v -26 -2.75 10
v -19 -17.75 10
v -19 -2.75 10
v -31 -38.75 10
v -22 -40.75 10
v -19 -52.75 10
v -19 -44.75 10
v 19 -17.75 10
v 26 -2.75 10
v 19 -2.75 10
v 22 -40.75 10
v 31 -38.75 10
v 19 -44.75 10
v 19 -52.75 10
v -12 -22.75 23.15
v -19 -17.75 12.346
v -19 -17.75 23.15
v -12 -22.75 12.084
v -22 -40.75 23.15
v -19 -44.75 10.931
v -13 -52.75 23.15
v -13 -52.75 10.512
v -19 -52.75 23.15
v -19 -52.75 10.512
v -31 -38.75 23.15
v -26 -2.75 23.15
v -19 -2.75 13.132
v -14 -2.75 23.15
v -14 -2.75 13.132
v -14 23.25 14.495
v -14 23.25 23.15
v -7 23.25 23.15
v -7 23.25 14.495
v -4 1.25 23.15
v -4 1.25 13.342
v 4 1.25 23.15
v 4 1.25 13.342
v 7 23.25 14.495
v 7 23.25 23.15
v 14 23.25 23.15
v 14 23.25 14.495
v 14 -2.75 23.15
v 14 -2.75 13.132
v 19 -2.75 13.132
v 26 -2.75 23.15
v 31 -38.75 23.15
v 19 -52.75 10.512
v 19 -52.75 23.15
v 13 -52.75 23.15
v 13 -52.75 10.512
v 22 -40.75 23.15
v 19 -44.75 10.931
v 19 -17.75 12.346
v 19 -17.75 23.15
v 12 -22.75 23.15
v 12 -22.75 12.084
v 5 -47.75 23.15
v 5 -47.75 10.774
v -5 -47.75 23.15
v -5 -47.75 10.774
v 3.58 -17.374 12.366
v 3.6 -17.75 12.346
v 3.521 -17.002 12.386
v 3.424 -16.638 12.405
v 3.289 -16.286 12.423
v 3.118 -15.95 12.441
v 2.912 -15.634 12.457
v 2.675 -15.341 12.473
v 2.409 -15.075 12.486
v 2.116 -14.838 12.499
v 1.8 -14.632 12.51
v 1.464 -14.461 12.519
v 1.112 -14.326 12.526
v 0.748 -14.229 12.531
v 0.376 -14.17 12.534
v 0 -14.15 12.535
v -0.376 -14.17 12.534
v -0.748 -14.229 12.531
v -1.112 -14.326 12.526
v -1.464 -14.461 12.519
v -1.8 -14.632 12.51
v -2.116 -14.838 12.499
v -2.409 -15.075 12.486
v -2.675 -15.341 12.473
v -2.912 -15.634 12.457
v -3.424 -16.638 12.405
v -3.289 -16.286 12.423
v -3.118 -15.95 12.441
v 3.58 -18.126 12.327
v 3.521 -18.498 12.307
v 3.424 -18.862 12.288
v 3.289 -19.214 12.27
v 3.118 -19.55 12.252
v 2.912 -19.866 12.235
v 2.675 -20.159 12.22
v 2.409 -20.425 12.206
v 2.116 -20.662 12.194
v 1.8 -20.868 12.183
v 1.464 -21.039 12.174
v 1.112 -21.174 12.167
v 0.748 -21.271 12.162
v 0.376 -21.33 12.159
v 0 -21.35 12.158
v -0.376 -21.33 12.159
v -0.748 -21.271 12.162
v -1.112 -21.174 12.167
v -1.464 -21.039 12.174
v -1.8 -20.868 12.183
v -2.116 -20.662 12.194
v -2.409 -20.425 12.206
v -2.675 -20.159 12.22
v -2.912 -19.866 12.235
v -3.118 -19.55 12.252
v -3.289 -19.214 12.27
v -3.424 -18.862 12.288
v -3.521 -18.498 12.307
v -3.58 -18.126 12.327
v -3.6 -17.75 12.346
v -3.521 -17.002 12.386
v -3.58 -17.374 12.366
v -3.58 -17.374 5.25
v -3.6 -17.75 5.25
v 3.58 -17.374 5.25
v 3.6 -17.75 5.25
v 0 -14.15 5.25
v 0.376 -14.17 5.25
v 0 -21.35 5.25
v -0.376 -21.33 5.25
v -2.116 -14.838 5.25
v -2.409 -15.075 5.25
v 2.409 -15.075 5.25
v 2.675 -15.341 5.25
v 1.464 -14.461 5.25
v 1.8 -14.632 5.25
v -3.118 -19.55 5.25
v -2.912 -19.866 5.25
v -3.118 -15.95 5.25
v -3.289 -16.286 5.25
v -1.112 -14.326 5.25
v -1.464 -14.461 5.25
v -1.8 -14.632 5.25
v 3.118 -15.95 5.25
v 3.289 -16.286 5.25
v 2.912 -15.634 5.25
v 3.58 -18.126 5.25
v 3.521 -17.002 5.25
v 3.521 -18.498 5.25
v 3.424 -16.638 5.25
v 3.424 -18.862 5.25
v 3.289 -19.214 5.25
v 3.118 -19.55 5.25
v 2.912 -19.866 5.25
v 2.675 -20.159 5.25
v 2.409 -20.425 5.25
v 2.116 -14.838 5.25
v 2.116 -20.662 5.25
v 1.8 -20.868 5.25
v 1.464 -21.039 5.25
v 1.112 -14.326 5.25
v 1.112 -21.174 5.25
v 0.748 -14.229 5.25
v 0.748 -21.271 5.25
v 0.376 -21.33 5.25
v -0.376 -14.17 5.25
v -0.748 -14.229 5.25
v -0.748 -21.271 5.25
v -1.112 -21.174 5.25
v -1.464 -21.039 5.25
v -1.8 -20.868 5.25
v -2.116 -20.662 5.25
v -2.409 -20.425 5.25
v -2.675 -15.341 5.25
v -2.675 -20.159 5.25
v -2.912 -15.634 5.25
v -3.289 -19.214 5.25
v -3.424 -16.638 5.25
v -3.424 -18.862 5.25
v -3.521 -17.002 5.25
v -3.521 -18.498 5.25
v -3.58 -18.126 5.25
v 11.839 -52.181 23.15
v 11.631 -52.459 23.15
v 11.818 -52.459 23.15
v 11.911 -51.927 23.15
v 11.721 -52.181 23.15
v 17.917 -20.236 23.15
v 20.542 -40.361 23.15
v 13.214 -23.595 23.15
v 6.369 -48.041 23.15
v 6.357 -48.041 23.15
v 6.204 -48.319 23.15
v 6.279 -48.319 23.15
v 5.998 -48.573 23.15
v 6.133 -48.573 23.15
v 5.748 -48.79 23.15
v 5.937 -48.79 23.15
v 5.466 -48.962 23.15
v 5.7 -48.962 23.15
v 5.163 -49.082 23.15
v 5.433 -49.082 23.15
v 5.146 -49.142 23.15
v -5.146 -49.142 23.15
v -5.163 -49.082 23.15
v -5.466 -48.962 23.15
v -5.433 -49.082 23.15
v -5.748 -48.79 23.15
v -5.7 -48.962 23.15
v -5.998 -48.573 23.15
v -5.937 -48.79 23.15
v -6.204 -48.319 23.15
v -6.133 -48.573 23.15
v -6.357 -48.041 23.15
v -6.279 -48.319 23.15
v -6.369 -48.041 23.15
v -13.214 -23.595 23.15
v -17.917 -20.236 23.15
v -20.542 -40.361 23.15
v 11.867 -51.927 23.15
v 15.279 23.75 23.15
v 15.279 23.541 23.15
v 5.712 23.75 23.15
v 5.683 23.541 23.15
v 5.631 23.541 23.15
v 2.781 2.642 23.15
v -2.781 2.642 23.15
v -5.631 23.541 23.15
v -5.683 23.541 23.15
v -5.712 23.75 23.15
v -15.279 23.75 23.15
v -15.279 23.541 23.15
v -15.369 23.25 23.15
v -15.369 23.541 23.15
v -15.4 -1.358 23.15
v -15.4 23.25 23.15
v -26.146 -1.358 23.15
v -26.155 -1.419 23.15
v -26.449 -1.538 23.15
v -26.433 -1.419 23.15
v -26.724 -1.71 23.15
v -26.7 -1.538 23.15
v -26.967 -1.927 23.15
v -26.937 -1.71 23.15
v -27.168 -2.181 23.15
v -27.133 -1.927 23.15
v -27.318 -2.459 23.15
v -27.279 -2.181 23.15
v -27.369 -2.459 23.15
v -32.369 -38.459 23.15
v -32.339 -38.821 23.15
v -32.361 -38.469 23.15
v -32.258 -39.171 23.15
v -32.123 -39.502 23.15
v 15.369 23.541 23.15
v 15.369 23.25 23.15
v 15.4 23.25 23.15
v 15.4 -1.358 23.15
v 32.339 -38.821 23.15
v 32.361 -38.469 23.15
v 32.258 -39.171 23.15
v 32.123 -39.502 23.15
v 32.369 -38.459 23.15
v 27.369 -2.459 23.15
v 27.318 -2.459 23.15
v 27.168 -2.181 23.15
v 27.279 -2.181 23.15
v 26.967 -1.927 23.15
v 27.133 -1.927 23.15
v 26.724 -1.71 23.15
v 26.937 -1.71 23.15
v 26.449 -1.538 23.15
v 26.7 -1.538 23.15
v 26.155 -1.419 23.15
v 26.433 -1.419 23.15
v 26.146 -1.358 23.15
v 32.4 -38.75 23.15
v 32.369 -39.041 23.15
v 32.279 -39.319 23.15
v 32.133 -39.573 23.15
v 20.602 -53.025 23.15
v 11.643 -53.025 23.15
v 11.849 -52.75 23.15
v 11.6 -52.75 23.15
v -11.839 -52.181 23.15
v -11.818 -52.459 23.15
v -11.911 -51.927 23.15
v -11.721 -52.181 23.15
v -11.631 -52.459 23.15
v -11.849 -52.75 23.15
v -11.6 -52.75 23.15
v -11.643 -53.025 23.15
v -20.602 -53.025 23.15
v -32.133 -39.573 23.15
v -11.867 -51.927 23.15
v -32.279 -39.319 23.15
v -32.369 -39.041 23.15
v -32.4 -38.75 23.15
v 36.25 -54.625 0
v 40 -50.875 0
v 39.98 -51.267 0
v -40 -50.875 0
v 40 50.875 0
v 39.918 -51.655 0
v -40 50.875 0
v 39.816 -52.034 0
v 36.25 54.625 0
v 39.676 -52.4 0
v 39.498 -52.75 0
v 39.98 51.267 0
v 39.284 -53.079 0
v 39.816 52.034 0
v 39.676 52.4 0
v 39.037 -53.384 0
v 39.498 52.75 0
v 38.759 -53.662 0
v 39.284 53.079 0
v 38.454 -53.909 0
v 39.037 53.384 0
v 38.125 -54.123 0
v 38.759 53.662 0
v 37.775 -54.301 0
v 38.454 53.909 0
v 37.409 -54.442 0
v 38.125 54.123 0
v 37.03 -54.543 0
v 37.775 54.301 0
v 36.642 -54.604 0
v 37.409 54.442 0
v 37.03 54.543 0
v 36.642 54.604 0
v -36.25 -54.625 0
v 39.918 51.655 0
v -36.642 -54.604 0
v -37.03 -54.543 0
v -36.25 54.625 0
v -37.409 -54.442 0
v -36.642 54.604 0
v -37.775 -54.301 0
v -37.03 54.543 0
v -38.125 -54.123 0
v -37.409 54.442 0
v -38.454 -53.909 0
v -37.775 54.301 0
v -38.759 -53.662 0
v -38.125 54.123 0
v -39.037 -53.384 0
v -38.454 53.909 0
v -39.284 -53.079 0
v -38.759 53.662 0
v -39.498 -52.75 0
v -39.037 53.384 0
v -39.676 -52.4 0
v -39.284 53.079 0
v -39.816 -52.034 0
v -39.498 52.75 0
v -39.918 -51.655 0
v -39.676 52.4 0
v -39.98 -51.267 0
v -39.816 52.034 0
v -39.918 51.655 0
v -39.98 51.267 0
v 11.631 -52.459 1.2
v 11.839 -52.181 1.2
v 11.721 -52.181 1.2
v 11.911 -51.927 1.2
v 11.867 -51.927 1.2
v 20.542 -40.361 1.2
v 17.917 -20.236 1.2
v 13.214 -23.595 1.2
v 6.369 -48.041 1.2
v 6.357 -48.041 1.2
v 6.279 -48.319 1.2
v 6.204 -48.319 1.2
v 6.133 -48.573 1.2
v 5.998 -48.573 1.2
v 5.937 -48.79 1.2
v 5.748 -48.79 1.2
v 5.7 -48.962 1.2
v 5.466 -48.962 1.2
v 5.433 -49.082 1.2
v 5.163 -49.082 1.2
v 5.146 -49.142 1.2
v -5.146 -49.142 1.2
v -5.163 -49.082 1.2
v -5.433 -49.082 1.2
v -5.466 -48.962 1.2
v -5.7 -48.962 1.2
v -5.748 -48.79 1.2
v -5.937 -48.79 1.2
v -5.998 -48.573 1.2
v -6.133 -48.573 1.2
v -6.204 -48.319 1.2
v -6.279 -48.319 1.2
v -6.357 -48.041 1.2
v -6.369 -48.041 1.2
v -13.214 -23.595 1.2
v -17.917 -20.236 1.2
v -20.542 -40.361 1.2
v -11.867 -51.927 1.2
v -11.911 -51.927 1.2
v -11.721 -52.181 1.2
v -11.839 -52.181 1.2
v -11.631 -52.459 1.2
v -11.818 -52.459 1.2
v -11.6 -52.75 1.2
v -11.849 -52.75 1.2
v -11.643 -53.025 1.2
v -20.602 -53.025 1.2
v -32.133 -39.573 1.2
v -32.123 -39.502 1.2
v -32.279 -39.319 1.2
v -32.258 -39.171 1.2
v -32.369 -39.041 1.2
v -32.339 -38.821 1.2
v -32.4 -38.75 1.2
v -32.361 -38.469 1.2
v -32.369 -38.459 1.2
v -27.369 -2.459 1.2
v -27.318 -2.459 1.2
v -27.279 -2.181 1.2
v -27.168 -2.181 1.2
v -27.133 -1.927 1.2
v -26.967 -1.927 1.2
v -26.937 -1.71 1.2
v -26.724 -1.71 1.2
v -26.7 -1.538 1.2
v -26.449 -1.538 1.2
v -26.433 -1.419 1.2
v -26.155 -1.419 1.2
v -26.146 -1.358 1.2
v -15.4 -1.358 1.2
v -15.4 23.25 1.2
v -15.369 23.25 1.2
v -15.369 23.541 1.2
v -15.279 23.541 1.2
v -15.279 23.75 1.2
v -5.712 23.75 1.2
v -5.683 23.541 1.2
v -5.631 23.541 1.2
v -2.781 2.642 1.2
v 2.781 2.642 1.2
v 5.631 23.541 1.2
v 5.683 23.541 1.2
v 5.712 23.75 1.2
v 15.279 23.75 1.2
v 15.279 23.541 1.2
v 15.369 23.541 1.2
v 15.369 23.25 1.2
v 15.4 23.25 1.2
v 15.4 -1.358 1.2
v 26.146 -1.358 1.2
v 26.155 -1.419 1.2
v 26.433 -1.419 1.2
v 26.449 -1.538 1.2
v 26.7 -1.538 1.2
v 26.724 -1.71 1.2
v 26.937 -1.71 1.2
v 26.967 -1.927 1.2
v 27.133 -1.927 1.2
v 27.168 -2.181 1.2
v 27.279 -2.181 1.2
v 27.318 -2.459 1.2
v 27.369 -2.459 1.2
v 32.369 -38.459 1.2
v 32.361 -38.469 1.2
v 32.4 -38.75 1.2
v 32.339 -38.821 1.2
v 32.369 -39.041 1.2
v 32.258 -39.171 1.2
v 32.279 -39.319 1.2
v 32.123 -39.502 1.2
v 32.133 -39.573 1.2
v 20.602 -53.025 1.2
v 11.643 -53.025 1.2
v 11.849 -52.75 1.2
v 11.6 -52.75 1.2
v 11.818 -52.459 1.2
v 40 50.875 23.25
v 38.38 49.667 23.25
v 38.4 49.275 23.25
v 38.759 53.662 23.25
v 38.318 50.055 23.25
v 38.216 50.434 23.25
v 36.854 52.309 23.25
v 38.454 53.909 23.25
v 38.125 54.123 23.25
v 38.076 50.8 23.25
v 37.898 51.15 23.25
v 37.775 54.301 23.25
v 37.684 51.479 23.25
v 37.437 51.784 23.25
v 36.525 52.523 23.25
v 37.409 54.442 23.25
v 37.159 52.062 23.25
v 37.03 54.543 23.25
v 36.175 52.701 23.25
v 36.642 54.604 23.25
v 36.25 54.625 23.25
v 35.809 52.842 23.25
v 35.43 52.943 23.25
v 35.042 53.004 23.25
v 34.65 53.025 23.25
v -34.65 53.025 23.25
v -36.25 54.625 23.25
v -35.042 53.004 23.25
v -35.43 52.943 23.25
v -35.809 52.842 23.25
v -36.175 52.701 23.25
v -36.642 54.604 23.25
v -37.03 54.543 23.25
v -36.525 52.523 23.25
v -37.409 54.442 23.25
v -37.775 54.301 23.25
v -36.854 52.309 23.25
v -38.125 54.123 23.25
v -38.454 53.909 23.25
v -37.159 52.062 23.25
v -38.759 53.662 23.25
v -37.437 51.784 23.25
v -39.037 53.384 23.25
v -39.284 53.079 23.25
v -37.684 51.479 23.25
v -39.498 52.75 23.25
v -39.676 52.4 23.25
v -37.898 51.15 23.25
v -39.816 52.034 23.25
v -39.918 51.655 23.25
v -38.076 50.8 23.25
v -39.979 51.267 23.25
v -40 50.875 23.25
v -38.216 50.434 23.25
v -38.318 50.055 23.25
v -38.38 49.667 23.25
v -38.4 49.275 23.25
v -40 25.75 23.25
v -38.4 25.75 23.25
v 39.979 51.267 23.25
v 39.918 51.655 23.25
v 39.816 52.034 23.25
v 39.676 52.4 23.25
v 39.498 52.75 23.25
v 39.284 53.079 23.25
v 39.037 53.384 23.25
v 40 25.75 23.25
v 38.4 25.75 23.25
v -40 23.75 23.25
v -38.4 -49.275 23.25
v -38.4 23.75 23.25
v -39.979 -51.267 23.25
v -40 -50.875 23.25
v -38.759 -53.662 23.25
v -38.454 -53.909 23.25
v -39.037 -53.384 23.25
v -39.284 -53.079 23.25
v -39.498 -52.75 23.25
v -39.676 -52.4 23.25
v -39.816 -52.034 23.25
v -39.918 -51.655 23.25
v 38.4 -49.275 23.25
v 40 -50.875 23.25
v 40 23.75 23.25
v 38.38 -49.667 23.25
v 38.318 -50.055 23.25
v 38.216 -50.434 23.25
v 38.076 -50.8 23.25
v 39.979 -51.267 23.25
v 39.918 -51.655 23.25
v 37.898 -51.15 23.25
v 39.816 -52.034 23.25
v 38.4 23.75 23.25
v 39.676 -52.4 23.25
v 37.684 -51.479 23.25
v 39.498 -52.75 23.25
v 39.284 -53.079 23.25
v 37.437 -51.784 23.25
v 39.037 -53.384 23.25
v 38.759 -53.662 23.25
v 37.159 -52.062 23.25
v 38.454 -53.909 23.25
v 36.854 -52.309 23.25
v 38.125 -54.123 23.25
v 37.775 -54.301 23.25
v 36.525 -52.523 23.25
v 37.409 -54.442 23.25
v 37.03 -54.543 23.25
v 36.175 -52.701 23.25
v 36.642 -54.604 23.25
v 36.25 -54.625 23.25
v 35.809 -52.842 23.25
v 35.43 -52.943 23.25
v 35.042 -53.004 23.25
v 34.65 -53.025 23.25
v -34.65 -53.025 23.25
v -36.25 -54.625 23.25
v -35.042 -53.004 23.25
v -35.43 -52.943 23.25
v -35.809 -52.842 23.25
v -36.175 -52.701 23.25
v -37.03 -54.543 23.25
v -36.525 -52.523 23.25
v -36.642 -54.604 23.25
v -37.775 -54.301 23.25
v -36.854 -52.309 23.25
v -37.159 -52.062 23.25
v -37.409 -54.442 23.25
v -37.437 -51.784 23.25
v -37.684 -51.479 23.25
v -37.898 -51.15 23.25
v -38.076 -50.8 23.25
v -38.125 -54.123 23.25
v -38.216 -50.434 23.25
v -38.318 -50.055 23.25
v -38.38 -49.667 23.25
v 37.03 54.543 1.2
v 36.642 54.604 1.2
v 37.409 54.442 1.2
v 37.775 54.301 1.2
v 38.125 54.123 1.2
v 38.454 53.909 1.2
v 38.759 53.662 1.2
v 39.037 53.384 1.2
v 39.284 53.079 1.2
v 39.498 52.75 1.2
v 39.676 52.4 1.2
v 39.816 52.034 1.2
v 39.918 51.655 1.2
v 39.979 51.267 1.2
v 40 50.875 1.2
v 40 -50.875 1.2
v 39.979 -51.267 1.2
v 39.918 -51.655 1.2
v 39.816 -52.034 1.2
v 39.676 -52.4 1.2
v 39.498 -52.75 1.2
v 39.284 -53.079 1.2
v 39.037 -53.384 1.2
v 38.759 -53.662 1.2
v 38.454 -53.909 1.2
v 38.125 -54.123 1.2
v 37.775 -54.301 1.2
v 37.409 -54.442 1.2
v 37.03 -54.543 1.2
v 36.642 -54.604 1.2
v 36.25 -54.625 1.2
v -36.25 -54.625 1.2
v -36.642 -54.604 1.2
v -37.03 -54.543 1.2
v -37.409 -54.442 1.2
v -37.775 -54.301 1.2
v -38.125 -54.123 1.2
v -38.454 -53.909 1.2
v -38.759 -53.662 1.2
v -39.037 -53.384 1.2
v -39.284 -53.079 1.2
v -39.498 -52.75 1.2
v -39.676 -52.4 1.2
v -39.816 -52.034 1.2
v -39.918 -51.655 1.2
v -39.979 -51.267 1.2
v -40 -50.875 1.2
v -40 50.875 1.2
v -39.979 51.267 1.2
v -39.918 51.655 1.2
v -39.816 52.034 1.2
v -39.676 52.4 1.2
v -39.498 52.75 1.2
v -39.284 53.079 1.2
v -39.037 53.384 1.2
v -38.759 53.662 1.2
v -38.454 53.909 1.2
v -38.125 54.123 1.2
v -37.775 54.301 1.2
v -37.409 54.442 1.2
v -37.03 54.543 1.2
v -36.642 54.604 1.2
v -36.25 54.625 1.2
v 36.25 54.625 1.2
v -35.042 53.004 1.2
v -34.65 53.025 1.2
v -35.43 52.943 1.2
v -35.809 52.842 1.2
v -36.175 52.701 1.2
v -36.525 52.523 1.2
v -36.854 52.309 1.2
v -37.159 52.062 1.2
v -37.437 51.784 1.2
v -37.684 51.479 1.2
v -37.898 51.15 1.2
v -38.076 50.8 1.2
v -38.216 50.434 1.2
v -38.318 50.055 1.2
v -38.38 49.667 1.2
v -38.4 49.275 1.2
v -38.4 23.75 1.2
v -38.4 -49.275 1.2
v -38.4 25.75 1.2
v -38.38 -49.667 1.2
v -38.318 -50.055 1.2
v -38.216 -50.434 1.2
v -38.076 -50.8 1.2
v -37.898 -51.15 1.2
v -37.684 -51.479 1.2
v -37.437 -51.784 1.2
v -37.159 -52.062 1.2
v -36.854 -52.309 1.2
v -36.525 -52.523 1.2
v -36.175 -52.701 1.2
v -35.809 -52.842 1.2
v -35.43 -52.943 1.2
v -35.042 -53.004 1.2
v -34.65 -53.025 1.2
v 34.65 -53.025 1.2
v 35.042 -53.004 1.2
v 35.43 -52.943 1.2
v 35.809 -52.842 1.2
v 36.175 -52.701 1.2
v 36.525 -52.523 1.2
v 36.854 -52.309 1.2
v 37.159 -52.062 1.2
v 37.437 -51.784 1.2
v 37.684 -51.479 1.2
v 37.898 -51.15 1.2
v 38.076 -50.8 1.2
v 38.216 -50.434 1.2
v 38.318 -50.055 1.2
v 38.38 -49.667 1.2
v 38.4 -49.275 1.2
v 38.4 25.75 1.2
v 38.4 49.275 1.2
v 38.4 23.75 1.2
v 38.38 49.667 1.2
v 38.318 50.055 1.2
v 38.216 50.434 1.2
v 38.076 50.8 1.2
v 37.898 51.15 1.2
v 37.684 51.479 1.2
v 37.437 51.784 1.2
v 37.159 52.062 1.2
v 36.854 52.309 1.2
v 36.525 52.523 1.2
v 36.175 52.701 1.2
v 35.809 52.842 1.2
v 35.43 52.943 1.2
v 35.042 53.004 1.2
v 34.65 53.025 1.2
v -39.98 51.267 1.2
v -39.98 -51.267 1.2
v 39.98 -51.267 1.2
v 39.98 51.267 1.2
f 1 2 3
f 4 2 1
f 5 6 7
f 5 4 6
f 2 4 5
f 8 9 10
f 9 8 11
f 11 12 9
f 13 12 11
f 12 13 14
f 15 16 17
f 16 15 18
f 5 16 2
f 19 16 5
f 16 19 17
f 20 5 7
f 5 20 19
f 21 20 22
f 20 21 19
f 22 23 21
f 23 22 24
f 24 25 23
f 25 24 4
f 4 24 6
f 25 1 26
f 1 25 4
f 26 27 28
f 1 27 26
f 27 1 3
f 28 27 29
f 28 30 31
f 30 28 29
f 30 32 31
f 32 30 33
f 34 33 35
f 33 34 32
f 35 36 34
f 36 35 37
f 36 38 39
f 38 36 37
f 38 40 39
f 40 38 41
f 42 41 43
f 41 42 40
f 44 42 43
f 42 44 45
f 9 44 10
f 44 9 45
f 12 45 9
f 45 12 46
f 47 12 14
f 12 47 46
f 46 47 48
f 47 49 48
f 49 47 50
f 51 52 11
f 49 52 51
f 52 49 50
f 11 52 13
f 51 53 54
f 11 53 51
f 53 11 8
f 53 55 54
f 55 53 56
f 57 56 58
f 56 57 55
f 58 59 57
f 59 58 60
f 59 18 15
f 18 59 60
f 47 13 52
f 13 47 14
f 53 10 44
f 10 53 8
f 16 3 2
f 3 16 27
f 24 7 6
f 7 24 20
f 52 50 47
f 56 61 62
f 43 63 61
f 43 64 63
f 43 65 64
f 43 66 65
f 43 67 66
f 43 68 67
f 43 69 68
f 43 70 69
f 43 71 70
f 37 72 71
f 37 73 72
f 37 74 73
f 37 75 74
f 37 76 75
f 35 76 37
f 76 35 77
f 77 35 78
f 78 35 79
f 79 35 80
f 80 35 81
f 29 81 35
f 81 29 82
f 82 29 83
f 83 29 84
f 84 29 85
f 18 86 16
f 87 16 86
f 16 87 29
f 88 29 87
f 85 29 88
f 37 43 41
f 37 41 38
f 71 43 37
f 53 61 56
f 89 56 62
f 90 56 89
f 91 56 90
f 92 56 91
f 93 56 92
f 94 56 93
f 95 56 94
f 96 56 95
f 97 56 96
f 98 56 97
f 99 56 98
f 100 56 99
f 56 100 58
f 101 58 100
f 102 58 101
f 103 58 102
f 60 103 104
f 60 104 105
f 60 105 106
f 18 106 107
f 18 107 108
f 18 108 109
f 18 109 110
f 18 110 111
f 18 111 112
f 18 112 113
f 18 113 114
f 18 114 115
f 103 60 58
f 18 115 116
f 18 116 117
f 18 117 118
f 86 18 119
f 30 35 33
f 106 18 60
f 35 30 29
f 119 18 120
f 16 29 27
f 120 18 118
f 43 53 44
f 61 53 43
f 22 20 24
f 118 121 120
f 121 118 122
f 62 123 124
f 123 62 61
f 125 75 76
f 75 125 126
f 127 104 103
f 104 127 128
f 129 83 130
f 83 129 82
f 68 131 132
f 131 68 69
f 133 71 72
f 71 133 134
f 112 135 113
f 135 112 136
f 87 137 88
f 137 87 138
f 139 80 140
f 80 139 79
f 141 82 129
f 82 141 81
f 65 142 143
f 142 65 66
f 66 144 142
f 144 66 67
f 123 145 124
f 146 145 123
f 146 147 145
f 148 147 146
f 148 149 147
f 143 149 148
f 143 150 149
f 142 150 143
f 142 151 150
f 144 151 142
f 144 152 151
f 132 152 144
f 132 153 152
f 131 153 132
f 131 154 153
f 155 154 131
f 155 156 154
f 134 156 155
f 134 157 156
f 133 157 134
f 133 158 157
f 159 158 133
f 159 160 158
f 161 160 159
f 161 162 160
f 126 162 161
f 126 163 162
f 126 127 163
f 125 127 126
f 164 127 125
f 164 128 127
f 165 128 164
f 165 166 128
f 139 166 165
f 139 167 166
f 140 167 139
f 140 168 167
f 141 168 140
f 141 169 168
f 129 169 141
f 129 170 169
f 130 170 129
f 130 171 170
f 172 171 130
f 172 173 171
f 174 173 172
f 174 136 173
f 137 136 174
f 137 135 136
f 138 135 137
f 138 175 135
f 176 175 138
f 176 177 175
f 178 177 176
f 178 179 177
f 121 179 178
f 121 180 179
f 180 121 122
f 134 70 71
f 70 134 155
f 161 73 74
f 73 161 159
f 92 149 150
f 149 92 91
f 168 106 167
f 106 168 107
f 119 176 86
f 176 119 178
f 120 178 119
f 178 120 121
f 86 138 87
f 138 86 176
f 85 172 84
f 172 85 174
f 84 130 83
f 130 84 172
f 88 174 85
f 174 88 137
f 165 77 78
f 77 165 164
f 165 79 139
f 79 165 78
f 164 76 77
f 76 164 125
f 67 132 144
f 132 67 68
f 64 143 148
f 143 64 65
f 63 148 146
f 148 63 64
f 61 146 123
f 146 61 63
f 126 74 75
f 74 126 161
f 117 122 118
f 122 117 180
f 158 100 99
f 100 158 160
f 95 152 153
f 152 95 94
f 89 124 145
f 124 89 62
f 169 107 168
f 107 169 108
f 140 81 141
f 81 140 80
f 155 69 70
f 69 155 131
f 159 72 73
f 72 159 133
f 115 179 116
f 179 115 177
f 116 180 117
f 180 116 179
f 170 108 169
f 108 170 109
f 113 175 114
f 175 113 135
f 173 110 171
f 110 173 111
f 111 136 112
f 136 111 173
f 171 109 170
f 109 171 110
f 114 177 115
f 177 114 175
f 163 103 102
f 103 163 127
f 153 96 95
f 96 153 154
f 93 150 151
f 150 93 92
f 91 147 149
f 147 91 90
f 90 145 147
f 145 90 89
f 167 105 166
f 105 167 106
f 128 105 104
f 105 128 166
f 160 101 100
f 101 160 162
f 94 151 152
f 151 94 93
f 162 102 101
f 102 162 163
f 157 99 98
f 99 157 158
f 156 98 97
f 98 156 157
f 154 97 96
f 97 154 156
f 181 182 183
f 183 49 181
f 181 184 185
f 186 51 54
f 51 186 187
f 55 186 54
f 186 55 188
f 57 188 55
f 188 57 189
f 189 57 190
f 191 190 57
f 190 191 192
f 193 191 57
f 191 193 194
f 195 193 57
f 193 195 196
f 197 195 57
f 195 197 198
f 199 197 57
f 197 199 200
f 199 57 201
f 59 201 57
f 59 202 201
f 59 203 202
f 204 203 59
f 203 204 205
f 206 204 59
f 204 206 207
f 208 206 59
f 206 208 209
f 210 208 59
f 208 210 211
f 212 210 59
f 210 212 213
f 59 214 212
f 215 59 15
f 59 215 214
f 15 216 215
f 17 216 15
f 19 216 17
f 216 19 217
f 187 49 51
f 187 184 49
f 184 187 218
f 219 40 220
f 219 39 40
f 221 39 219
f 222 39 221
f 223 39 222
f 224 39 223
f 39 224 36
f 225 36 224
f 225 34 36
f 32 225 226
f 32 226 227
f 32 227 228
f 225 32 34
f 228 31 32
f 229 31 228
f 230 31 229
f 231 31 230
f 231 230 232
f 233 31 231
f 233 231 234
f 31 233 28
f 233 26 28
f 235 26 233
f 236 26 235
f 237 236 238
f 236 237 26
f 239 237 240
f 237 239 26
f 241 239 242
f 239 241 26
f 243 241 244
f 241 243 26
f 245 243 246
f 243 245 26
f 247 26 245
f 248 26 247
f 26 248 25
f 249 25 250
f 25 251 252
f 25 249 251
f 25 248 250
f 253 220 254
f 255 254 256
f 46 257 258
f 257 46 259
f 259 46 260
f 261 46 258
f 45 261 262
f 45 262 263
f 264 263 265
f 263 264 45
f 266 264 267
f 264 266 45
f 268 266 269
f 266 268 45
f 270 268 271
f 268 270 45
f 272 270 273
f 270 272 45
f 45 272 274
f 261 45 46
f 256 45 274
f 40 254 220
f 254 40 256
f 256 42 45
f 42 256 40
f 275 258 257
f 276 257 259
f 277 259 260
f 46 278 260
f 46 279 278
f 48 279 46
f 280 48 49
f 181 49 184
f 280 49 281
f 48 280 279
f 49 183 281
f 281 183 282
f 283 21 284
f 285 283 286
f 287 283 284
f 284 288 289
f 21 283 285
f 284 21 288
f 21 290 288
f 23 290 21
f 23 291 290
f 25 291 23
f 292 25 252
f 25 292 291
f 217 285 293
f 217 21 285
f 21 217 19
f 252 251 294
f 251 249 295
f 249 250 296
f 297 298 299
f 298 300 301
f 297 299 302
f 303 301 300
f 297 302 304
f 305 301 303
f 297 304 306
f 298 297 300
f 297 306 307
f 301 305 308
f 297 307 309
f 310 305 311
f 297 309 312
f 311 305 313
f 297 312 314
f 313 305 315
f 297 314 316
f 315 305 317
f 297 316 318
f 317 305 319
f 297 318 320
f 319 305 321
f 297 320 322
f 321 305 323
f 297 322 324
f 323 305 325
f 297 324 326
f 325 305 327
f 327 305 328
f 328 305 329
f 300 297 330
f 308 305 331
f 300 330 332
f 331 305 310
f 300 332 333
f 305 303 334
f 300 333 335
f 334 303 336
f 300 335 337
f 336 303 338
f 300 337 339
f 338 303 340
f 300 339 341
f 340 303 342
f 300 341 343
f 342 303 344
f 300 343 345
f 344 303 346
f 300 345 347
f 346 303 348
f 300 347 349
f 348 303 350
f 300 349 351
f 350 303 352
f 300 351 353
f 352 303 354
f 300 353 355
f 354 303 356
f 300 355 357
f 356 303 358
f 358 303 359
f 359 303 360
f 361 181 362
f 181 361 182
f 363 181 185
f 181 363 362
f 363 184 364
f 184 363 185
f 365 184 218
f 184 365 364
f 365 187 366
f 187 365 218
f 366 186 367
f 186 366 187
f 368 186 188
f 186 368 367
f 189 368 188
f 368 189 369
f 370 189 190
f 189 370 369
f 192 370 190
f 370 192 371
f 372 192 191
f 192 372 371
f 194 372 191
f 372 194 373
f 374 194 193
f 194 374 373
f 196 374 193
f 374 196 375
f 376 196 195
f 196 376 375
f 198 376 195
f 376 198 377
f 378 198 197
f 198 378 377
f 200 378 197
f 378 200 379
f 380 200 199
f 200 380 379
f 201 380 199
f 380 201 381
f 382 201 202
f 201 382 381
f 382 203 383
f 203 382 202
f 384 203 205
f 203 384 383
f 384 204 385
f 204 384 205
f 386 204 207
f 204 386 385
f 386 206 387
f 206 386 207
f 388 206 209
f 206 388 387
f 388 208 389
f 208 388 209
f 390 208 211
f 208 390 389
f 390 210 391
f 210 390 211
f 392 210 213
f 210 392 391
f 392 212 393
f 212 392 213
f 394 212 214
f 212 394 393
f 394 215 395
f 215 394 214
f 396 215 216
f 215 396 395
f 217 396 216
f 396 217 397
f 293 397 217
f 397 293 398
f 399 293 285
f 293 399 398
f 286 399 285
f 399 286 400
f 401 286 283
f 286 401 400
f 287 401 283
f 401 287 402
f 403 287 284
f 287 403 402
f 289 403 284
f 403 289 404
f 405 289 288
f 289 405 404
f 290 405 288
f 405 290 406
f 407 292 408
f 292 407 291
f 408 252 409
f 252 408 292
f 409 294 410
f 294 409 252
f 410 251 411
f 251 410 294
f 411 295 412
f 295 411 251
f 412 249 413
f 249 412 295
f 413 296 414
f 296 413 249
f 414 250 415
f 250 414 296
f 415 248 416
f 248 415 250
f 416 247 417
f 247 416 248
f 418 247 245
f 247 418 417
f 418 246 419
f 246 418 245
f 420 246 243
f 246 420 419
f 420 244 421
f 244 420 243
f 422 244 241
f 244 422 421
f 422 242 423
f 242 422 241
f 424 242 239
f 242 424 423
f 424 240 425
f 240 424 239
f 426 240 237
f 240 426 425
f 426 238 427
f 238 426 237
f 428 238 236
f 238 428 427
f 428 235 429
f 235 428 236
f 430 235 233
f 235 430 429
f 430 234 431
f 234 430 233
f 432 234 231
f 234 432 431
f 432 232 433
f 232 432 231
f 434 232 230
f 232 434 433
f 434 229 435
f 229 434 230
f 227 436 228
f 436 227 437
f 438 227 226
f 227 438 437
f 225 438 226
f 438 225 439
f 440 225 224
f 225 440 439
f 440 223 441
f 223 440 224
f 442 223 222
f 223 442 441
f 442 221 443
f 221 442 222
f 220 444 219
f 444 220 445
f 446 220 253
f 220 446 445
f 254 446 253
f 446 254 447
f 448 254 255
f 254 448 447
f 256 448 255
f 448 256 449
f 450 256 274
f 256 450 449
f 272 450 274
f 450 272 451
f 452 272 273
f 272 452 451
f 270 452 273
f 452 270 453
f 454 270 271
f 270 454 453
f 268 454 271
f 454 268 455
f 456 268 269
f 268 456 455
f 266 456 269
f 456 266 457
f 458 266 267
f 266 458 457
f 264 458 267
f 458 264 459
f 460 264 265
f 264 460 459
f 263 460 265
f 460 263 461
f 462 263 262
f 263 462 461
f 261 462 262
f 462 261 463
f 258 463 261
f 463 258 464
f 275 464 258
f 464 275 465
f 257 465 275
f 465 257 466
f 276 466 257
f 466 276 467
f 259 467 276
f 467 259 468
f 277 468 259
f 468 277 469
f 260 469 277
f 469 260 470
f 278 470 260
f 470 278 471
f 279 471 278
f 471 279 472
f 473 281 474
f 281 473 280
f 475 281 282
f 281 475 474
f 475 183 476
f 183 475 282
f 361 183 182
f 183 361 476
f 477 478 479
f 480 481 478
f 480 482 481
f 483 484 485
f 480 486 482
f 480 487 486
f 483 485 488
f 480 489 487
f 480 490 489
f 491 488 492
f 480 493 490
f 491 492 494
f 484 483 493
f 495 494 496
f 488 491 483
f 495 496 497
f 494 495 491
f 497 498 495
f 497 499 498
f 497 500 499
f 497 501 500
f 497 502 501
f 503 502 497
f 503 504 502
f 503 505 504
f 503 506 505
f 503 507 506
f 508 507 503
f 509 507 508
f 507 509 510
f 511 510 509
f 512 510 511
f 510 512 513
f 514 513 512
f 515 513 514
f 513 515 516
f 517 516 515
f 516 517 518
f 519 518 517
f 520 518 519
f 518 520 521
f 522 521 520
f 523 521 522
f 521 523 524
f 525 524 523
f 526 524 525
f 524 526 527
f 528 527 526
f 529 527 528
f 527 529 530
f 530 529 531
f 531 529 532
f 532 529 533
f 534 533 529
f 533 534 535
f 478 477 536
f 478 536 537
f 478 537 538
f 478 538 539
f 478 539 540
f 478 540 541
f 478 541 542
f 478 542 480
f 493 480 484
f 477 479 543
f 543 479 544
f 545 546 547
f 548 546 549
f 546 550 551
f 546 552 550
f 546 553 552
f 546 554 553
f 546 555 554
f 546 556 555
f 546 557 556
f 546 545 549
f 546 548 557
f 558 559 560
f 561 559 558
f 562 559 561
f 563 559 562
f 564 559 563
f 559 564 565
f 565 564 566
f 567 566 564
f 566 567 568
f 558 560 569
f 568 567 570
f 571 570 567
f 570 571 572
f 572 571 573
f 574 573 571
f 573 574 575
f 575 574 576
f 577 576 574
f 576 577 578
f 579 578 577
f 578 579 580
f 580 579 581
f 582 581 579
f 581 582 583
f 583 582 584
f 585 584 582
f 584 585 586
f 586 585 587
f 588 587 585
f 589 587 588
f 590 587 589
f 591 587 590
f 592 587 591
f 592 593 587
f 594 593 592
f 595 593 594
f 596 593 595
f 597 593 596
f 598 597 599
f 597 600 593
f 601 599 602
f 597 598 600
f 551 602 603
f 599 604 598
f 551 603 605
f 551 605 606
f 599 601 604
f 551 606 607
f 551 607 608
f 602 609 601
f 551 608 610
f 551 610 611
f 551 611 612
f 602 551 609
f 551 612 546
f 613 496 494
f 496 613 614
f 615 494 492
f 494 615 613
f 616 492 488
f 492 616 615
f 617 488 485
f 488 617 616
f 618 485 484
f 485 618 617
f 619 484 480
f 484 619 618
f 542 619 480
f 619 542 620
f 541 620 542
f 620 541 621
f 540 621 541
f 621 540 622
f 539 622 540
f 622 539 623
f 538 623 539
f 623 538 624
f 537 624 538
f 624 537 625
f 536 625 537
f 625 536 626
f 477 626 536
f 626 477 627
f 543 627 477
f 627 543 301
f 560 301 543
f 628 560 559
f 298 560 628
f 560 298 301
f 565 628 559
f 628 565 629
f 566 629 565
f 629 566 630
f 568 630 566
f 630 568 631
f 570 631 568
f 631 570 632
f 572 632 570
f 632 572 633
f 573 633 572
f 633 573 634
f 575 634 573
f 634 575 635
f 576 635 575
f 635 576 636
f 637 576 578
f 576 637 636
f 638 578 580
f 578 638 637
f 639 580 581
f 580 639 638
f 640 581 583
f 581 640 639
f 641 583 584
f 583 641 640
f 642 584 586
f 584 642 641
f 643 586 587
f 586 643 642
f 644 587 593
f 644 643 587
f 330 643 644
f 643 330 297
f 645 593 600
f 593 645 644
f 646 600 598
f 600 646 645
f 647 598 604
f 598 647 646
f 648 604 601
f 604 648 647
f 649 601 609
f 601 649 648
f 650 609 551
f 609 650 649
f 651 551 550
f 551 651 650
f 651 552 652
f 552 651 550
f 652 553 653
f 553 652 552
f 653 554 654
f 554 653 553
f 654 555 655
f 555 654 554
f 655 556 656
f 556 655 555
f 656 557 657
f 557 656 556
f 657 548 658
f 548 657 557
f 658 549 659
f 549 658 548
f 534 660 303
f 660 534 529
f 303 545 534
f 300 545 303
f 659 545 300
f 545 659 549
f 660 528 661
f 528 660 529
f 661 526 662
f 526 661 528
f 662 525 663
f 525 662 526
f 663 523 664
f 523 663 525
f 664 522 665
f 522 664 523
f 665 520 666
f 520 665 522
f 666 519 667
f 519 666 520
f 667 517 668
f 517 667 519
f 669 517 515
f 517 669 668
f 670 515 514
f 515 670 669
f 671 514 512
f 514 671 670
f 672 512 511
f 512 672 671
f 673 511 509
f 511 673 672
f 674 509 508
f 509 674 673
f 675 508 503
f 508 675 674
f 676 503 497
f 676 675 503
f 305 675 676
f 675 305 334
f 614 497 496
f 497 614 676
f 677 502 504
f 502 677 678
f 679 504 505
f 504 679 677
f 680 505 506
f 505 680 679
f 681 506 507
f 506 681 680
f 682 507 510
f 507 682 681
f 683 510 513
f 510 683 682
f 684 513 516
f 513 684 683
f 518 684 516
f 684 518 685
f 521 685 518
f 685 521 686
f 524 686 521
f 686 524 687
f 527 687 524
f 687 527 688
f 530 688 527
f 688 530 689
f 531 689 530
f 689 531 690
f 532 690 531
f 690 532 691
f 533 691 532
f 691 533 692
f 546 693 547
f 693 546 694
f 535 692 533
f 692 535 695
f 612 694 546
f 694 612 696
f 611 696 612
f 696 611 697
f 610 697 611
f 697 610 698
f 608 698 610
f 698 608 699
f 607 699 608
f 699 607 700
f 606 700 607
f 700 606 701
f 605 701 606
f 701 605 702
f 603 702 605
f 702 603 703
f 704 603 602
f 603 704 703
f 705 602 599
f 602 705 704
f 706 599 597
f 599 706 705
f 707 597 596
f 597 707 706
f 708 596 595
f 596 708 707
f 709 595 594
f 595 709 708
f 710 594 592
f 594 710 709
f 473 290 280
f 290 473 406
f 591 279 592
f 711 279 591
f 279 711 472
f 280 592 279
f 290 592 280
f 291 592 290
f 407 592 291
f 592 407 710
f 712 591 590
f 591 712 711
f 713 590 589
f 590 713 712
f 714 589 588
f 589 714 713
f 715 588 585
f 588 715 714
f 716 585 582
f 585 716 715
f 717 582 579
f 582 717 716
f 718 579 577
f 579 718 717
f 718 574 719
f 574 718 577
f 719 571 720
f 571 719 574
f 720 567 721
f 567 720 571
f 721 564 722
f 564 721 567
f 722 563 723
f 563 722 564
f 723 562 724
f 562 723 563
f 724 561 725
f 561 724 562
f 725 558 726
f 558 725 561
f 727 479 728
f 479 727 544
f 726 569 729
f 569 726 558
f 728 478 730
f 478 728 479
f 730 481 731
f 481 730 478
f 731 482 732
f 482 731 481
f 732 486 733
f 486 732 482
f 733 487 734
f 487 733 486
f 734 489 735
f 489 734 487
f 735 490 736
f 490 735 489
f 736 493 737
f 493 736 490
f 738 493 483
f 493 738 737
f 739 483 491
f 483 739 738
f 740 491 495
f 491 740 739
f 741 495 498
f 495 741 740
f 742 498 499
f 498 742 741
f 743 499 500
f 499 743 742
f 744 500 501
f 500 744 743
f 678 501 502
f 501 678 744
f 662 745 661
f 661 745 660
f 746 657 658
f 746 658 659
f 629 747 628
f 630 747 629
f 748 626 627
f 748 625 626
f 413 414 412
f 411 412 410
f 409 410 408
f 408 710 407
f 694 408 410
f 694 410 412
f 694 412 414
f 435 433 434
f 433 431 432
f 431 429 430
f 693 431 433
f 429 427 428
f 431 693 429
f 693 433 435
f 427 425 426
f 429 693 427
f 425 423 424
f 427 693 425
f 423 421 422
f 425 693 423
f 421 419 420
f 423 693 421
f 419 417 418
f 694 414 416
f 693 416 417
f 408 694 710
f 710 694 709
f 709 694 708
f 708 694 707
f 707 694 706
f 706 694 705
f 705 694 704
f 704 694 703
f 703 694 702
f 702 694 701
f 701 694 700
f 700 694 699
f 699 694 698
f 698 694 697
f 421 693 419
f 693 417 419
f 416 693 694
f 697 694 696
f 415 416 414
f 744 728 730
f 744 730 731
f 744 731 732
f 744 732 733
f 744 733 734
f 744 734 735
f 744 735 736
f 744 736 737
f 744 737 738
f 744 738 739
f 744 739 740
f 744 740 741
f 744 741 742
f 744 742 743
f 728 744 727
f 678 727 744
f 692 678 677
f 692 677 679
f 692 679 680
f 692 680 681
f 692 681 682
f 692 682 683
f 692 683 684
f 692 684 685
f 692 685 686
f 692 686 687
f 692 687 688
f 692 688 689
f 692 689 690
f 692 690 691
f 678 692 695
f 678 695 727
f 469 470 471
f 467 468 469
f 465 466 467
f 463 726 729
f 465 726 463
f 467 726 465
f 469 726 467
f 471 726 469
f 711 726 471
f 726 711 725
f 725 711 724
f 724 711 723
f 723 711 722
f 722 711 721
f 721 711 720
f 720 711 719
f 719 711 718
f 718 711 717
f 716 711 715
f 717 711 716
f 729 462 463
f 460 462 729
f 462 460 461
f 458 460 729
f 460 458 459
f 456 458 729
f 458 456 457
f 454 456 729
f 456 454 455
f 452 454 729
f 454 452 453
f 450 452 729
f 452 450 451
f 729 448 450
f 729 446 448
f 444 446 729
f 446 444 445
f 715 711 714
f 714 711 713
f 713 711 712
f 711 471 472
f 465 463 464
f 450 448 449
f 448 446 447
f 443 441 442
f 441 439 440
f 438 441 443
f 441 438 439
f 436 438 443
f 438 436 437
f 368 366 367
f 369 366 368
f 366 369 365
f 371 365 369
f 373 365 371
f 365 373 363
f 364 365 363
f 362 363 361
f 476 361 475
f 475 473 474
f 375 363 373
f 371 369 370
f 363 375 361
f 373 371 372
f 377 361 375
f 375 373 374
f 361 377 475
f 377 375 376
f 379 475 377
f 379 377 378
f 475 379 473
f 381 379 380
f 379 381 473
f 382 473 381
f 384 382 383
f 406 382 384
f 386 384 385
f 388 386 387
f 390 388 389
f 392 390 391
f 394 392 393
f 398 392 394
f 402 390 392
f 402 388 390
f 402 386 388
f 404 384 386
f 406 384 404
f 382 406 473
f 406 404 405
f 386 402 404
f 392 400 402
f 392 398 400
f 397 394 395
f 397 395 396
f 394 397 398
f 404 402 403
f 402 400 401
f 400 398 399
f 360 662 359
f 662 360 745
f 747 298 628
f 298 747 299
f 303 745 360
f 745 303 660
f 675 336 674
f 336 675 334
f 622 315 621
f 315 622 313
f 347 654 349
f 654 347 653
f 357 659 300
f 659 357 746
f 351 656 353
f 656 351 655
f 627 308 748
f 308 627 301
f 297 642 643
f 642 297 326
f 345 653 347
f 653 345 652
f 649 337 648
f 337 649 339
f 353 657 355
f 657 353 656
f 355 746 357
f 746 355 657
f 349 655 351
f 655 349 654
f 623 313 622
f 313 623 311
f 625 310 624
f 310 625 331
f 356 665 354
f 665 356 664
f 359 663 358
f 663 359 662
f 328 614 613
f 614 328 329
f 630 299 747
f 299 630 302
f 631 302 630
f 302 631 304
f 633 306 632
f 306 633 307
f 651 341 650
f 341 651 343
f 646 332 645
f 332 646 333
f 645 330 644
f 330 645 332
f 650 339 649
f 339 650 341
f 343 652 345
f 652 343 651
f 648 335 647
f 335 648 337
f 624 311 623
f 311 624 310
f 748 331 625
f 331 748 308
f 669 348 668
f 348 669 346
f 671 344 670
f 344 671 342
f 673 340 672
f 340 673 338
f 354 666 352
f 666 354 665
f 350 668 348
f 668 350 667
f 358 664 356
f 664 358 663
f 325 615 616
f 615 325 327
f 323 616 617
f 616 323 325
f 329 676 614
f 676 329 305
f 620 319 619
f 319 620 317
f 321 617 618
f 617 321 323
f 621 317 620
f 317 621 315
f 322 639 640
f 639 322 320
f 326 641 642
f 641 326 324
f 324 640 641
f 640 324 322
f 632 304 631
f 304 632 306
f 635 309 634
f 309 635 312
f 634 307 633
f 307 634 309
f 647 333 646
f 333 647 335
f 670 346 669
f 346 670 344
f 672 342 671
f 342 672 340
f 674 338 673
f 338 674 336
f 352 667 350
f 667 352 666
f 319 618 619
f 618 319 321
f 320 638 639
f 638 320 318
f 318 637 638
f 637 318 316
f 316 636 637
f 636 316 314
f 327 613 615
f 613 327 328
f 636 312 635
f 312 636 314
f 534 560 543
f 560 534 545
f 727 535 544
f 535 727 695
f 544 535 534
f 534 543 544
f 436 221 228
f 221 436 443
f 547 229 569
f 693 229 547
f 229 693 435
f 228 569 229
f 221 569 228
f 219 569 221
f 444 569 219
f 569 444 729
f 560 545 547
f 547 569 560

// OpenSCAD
/* ig-88-bin.scad
 *
 * Copyright (C) Robert B. Ross, 2016
 *
 * This software is released under the Creative Commons
 * Attribution-ShareAlike 4.0 International Public License.
 */

include <./bintools.scad>

// ig88Outline();
// ig88Blank();
betterIg88Bin();

module basicIg88Bin() {
   harborFreightLargeHalfHt(locations=[[[0,0,0],[0,0,0]]]) ig88Blank();
}

module betterIg88Bin() {
   harborFreightLargeHalfHt(locations=[[[0,17.75,0],[0,0,180]]]) ig88Blank();
   translate([-40,23.75,0]) cube([80,2,46.5/2]);
}


module ig88Outline() {
   translate([0,0,46.5/2]) rotate([180,0,0]) 
      blankCutout(height=46.5/2 - 0.1, outlineScale=1.2) ig88Blank();
}

module ig88Blank() {
   rotate([0,0,0]) {
      /* peg hole */
      cylinder(h=18,r=3.6);

      difference() {
         union() {
            linear_extrude(height=13.25) {
               polygon(points=[[0,19],[4,19],[7,41],[14,41],[14,15],
                               [26,15],[31,-21],[19,-35],[13,-35], // [17,-37]
                               [22,-23],[19,0],[12,-5],[5,-30],[0,-30]]);
               mirror([1,0,0]) polygon(points=[[0,19],[4,19],[7,41],[14,41],[14,15],
                               [26,15],[31,-21],[19,-35],[13,-35],
                               [22,-23],[19,0],[12,-5],[5,-30],[0,-30]]);
            }
         }
         
         /* differenced out */
         translate([-19,-40,13]) rotate([-3,0,0]) cube([38,90,10]);
      }
   }
}

/*
 * Local variables:
 *  mode: C
 *  c-indent-level: 4
 *  c-basic-offset: 4
 * End:
 *
 * vim: ts=8 sts=4 sw=4 expandtab
 */
